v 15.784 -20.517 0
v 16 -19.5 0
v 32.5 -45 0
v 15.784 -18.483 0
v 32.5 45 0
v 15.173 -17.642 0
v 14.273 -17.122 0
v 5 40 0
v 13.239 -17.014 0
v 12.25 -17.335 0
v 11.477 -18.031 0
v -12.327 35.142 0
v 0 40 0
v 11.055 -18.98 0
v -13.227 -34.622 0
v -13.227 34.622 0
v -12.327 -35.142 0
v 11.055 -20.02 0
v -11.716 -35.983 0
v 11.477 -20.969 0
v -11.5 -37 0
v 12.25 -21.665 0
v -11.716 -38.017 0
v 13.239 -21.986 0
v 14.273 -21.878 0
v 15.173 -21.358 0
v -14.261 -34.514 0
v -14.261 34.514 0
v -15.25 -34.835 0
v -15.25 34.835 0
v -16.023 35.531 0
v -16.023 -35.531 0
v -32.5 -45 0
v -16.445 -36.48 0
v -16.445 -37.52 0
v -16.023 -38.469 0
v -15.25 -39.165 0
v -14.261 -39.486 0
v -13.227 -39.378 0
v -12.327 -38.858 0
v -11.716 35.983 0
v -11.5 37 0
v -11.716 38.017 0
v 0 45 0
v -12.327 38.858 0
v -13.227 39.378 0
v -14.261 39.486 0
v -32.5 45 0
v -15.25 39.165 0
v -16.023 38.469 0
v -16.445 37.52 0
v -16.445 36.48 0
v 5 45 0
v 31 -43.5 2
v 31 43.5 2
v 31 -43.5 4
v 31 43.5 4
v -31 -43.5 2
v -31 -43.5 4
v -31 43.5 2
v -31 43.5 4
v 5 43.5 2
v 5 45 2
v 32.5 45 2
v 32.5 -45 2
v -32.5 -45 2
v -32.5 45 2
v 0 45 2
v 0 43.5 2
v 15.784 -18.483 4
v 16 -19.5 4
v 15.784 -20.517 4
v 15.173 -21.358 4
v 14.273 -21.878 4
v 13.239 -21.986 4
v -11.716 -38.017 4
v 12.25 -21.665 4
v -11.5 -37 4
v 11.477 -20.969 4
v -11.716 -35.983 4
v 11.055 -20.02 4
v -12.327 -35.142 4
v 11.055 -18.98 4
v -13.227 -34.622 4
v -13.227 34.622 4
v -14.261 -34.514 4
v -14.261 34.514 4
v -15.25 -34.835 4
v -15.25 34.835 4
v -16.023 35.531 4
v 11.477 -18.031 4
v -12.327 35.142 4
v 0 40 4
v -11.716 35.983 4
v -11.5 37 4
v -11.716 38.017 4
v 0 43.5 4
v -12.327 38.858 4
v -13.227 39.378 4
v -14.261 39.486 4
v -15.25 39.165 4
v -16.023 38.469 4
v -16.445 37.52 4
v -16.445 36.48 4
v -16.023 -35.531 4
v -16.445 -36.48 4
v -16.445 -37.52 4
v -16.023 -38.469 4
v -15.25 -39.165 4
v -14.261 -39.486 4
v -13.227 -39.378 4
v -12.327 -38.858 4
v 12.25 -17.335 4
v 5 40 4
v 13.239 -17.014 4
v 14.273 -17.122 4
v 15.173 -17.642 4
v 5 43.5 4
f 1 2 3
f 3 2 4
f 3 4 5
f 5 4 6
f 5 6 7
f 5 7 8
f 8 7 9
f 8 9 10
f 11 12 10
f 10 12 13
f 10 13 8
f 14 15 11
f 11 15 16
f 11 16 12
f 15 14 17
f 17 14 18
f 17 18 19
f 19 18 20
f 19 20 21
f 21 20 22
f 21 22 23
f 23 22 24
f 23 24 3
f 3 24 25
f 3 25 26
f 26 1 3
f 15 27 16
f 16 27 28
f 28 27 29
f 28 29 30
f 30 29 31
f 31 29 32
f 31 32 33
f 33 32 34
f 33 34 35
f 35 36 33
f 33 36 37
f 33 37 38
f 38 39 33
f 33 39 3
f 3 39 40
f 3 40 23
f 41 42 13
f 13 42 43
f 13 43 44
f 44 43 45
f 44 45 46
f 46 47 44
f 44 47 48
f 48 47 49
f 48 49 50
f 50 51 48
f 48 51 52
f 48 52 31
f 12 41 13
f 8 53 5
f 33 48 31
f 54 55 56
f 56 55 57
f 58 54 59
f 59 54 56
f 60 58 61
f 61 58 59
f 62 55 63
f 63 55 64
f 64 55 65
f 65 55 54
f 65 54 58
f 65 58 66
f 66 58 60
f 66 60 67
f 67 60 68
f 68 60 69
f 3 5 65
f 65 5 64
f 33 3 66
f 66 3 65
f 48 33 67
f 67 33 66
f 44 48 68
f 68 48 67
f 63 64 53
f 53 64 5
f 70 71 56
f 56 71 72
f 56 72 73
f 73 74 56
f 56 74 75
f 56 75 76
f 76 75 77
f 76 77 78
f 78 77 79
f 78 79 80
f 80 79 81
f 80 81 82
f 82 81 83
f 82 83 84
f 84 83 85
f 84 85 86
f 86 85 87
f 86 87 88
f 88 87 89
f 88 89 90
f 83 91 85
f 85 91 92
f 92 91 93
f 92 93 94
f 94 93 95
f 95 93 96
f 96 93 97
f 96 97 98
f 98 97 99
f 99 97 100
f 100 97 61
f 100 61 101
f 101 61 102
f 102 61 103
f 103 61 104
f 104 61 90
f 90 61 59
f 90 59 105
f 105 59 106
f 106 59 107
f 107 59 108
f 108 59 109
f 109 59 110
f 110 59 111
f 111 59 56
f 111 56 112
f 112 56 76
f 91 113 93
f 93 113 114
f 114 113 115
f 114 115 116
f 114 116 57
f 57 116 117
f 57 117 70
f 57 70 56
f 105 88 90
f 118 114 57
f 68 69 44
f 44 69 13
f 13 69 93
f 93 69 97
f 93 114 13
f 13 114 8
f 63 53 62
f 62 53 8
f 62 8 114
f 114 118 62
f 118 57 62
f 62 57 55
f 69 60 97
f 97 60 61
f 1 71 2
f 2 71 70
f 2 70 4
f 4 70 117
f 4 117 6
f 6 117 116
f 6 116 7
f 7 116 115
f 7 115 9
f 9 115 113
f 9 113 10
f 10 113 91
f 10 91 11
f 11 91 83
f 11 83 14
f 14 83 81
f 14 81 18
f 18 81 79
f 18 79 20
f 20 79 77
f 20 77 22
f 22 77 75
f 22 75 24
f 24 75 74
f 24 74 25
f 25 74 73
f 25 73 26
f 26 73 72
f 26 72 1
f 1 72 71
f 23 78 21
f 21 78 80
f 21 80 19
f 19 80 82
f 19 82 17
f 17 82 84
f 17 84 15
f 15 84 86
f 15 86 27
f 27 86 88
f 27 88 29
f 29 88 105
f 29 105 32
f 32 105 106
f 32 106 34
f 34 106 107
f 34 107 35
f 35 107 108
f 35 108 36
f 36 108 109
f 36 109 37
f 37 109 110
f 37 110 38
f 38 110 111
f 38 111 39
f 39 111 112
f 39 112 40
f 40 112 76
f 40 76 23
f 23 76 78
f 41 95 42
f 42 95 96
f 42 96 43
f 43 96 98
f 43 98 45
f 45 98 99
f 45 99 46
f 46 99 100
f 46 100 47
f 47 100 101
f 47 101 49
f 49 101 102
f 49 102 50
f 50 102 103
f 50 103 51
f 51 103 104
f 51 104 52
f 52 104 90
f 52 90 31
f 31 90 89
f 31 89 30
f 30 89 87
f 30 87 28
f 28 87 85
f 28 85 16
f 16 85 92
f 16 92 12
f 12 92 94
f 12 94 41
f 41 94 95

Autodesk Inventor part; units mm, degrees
ref_plane "YZ Plane" through (0, 0, 0) normal (1, 0, 0) x (0, 1, 0)
ref_plane "XZ Plane" through (0, 0, 0) normal (0, 1, 0) x (-1, 0, 0)
ref_plane "XY Plane" through (0, 0, 0) normal (0, 0, 1) x (1, 0, 0)
sketch "스케치1" plane through (0, 0, 0) normal (0, 0, 1) x (1, 0, 0)
  line L0 (-32.5, 45) -> (32.5, 45)
  line L1 (32.5, 45) -> (32.5, -45)
  line L2 (32.5, -45) -> (-32.5, -45)
  line L3 (-32.5, -45) -> (-32.5, 45)
  line L4 (-32.5, 45) -> (32.5, -45) construction
  line L5 (32.5, 45) -> (-32.5, -45) construction
  point P0 (0, 0)
  dimension "d0" = 65
  dimension "d1" = 90
extrude "돌출1" add sketch "스케치1" along normal blind 2
sketch "스케치3" plane through (0, 0, 2) normal (0, 0, 1) x (1, 0, 0)
  line L0 (-31, 43.5) -> (31, 43.5)
  line L1 (31, 43.5) -> (31, -43.5)
  line L2 (31, -43.5) -> (-31, -43.5)
  line L3 (-31, -43.5) -> (-31, 43.5)
  line L4 (-31, 43.5) -> (31, -43.5) construction
  line L5 (31, 43.5) -> (-31, -43.5) construction
  point P0 (0, 0)
  dimension "d8" = 62
  dimension "d9" = 87
extrude "돌출3" add sketch "스케치3" along normal blind 2
sketch "스케치5" plane through (0, 0, 4) normal (0, 0, 1) x (1, 0, 0)
  line L0 (32.5, 45) -> (-32.5, 45) projected
  line L1 (0, 45) -> (5, 45)
  line L2 (5, 45) -> (5, 40)
  line L3 (5, 40) -> (0, 40)
  line L4 (0, 40) -> (0, 45)
  point P0 (0, 0)
  dimension "d14" = 5
  dimension "d15" = 5
extrude "돌출4" cut sketch "스케치5" against normal blind 4
sketch "스케치6" plane through (0, 0, 4) normal (0, 0, 1) x (1, 0, 0)
  circle A0 centre (-14, 37) radius 2.5
  circle A1 centre (-14, -37) radius 2.5
  circle A2 centre (13.5, -19.5) radius 2.5
  point P0 (0, 0)
  dimension "d18" = 5
  dimension "d19" = 37
  dimension "d20" = 14
  dimension "d21" = 5
  dimension "d22" = 37
  dimension "d23" = 14
  dimension "d24" = 5
  dimension "d25" = 13.5
  dimension "d26" = 17.5
extrude "돌출5" cut sketch "스케치6" against normal blind 4
properties part number "upper"
